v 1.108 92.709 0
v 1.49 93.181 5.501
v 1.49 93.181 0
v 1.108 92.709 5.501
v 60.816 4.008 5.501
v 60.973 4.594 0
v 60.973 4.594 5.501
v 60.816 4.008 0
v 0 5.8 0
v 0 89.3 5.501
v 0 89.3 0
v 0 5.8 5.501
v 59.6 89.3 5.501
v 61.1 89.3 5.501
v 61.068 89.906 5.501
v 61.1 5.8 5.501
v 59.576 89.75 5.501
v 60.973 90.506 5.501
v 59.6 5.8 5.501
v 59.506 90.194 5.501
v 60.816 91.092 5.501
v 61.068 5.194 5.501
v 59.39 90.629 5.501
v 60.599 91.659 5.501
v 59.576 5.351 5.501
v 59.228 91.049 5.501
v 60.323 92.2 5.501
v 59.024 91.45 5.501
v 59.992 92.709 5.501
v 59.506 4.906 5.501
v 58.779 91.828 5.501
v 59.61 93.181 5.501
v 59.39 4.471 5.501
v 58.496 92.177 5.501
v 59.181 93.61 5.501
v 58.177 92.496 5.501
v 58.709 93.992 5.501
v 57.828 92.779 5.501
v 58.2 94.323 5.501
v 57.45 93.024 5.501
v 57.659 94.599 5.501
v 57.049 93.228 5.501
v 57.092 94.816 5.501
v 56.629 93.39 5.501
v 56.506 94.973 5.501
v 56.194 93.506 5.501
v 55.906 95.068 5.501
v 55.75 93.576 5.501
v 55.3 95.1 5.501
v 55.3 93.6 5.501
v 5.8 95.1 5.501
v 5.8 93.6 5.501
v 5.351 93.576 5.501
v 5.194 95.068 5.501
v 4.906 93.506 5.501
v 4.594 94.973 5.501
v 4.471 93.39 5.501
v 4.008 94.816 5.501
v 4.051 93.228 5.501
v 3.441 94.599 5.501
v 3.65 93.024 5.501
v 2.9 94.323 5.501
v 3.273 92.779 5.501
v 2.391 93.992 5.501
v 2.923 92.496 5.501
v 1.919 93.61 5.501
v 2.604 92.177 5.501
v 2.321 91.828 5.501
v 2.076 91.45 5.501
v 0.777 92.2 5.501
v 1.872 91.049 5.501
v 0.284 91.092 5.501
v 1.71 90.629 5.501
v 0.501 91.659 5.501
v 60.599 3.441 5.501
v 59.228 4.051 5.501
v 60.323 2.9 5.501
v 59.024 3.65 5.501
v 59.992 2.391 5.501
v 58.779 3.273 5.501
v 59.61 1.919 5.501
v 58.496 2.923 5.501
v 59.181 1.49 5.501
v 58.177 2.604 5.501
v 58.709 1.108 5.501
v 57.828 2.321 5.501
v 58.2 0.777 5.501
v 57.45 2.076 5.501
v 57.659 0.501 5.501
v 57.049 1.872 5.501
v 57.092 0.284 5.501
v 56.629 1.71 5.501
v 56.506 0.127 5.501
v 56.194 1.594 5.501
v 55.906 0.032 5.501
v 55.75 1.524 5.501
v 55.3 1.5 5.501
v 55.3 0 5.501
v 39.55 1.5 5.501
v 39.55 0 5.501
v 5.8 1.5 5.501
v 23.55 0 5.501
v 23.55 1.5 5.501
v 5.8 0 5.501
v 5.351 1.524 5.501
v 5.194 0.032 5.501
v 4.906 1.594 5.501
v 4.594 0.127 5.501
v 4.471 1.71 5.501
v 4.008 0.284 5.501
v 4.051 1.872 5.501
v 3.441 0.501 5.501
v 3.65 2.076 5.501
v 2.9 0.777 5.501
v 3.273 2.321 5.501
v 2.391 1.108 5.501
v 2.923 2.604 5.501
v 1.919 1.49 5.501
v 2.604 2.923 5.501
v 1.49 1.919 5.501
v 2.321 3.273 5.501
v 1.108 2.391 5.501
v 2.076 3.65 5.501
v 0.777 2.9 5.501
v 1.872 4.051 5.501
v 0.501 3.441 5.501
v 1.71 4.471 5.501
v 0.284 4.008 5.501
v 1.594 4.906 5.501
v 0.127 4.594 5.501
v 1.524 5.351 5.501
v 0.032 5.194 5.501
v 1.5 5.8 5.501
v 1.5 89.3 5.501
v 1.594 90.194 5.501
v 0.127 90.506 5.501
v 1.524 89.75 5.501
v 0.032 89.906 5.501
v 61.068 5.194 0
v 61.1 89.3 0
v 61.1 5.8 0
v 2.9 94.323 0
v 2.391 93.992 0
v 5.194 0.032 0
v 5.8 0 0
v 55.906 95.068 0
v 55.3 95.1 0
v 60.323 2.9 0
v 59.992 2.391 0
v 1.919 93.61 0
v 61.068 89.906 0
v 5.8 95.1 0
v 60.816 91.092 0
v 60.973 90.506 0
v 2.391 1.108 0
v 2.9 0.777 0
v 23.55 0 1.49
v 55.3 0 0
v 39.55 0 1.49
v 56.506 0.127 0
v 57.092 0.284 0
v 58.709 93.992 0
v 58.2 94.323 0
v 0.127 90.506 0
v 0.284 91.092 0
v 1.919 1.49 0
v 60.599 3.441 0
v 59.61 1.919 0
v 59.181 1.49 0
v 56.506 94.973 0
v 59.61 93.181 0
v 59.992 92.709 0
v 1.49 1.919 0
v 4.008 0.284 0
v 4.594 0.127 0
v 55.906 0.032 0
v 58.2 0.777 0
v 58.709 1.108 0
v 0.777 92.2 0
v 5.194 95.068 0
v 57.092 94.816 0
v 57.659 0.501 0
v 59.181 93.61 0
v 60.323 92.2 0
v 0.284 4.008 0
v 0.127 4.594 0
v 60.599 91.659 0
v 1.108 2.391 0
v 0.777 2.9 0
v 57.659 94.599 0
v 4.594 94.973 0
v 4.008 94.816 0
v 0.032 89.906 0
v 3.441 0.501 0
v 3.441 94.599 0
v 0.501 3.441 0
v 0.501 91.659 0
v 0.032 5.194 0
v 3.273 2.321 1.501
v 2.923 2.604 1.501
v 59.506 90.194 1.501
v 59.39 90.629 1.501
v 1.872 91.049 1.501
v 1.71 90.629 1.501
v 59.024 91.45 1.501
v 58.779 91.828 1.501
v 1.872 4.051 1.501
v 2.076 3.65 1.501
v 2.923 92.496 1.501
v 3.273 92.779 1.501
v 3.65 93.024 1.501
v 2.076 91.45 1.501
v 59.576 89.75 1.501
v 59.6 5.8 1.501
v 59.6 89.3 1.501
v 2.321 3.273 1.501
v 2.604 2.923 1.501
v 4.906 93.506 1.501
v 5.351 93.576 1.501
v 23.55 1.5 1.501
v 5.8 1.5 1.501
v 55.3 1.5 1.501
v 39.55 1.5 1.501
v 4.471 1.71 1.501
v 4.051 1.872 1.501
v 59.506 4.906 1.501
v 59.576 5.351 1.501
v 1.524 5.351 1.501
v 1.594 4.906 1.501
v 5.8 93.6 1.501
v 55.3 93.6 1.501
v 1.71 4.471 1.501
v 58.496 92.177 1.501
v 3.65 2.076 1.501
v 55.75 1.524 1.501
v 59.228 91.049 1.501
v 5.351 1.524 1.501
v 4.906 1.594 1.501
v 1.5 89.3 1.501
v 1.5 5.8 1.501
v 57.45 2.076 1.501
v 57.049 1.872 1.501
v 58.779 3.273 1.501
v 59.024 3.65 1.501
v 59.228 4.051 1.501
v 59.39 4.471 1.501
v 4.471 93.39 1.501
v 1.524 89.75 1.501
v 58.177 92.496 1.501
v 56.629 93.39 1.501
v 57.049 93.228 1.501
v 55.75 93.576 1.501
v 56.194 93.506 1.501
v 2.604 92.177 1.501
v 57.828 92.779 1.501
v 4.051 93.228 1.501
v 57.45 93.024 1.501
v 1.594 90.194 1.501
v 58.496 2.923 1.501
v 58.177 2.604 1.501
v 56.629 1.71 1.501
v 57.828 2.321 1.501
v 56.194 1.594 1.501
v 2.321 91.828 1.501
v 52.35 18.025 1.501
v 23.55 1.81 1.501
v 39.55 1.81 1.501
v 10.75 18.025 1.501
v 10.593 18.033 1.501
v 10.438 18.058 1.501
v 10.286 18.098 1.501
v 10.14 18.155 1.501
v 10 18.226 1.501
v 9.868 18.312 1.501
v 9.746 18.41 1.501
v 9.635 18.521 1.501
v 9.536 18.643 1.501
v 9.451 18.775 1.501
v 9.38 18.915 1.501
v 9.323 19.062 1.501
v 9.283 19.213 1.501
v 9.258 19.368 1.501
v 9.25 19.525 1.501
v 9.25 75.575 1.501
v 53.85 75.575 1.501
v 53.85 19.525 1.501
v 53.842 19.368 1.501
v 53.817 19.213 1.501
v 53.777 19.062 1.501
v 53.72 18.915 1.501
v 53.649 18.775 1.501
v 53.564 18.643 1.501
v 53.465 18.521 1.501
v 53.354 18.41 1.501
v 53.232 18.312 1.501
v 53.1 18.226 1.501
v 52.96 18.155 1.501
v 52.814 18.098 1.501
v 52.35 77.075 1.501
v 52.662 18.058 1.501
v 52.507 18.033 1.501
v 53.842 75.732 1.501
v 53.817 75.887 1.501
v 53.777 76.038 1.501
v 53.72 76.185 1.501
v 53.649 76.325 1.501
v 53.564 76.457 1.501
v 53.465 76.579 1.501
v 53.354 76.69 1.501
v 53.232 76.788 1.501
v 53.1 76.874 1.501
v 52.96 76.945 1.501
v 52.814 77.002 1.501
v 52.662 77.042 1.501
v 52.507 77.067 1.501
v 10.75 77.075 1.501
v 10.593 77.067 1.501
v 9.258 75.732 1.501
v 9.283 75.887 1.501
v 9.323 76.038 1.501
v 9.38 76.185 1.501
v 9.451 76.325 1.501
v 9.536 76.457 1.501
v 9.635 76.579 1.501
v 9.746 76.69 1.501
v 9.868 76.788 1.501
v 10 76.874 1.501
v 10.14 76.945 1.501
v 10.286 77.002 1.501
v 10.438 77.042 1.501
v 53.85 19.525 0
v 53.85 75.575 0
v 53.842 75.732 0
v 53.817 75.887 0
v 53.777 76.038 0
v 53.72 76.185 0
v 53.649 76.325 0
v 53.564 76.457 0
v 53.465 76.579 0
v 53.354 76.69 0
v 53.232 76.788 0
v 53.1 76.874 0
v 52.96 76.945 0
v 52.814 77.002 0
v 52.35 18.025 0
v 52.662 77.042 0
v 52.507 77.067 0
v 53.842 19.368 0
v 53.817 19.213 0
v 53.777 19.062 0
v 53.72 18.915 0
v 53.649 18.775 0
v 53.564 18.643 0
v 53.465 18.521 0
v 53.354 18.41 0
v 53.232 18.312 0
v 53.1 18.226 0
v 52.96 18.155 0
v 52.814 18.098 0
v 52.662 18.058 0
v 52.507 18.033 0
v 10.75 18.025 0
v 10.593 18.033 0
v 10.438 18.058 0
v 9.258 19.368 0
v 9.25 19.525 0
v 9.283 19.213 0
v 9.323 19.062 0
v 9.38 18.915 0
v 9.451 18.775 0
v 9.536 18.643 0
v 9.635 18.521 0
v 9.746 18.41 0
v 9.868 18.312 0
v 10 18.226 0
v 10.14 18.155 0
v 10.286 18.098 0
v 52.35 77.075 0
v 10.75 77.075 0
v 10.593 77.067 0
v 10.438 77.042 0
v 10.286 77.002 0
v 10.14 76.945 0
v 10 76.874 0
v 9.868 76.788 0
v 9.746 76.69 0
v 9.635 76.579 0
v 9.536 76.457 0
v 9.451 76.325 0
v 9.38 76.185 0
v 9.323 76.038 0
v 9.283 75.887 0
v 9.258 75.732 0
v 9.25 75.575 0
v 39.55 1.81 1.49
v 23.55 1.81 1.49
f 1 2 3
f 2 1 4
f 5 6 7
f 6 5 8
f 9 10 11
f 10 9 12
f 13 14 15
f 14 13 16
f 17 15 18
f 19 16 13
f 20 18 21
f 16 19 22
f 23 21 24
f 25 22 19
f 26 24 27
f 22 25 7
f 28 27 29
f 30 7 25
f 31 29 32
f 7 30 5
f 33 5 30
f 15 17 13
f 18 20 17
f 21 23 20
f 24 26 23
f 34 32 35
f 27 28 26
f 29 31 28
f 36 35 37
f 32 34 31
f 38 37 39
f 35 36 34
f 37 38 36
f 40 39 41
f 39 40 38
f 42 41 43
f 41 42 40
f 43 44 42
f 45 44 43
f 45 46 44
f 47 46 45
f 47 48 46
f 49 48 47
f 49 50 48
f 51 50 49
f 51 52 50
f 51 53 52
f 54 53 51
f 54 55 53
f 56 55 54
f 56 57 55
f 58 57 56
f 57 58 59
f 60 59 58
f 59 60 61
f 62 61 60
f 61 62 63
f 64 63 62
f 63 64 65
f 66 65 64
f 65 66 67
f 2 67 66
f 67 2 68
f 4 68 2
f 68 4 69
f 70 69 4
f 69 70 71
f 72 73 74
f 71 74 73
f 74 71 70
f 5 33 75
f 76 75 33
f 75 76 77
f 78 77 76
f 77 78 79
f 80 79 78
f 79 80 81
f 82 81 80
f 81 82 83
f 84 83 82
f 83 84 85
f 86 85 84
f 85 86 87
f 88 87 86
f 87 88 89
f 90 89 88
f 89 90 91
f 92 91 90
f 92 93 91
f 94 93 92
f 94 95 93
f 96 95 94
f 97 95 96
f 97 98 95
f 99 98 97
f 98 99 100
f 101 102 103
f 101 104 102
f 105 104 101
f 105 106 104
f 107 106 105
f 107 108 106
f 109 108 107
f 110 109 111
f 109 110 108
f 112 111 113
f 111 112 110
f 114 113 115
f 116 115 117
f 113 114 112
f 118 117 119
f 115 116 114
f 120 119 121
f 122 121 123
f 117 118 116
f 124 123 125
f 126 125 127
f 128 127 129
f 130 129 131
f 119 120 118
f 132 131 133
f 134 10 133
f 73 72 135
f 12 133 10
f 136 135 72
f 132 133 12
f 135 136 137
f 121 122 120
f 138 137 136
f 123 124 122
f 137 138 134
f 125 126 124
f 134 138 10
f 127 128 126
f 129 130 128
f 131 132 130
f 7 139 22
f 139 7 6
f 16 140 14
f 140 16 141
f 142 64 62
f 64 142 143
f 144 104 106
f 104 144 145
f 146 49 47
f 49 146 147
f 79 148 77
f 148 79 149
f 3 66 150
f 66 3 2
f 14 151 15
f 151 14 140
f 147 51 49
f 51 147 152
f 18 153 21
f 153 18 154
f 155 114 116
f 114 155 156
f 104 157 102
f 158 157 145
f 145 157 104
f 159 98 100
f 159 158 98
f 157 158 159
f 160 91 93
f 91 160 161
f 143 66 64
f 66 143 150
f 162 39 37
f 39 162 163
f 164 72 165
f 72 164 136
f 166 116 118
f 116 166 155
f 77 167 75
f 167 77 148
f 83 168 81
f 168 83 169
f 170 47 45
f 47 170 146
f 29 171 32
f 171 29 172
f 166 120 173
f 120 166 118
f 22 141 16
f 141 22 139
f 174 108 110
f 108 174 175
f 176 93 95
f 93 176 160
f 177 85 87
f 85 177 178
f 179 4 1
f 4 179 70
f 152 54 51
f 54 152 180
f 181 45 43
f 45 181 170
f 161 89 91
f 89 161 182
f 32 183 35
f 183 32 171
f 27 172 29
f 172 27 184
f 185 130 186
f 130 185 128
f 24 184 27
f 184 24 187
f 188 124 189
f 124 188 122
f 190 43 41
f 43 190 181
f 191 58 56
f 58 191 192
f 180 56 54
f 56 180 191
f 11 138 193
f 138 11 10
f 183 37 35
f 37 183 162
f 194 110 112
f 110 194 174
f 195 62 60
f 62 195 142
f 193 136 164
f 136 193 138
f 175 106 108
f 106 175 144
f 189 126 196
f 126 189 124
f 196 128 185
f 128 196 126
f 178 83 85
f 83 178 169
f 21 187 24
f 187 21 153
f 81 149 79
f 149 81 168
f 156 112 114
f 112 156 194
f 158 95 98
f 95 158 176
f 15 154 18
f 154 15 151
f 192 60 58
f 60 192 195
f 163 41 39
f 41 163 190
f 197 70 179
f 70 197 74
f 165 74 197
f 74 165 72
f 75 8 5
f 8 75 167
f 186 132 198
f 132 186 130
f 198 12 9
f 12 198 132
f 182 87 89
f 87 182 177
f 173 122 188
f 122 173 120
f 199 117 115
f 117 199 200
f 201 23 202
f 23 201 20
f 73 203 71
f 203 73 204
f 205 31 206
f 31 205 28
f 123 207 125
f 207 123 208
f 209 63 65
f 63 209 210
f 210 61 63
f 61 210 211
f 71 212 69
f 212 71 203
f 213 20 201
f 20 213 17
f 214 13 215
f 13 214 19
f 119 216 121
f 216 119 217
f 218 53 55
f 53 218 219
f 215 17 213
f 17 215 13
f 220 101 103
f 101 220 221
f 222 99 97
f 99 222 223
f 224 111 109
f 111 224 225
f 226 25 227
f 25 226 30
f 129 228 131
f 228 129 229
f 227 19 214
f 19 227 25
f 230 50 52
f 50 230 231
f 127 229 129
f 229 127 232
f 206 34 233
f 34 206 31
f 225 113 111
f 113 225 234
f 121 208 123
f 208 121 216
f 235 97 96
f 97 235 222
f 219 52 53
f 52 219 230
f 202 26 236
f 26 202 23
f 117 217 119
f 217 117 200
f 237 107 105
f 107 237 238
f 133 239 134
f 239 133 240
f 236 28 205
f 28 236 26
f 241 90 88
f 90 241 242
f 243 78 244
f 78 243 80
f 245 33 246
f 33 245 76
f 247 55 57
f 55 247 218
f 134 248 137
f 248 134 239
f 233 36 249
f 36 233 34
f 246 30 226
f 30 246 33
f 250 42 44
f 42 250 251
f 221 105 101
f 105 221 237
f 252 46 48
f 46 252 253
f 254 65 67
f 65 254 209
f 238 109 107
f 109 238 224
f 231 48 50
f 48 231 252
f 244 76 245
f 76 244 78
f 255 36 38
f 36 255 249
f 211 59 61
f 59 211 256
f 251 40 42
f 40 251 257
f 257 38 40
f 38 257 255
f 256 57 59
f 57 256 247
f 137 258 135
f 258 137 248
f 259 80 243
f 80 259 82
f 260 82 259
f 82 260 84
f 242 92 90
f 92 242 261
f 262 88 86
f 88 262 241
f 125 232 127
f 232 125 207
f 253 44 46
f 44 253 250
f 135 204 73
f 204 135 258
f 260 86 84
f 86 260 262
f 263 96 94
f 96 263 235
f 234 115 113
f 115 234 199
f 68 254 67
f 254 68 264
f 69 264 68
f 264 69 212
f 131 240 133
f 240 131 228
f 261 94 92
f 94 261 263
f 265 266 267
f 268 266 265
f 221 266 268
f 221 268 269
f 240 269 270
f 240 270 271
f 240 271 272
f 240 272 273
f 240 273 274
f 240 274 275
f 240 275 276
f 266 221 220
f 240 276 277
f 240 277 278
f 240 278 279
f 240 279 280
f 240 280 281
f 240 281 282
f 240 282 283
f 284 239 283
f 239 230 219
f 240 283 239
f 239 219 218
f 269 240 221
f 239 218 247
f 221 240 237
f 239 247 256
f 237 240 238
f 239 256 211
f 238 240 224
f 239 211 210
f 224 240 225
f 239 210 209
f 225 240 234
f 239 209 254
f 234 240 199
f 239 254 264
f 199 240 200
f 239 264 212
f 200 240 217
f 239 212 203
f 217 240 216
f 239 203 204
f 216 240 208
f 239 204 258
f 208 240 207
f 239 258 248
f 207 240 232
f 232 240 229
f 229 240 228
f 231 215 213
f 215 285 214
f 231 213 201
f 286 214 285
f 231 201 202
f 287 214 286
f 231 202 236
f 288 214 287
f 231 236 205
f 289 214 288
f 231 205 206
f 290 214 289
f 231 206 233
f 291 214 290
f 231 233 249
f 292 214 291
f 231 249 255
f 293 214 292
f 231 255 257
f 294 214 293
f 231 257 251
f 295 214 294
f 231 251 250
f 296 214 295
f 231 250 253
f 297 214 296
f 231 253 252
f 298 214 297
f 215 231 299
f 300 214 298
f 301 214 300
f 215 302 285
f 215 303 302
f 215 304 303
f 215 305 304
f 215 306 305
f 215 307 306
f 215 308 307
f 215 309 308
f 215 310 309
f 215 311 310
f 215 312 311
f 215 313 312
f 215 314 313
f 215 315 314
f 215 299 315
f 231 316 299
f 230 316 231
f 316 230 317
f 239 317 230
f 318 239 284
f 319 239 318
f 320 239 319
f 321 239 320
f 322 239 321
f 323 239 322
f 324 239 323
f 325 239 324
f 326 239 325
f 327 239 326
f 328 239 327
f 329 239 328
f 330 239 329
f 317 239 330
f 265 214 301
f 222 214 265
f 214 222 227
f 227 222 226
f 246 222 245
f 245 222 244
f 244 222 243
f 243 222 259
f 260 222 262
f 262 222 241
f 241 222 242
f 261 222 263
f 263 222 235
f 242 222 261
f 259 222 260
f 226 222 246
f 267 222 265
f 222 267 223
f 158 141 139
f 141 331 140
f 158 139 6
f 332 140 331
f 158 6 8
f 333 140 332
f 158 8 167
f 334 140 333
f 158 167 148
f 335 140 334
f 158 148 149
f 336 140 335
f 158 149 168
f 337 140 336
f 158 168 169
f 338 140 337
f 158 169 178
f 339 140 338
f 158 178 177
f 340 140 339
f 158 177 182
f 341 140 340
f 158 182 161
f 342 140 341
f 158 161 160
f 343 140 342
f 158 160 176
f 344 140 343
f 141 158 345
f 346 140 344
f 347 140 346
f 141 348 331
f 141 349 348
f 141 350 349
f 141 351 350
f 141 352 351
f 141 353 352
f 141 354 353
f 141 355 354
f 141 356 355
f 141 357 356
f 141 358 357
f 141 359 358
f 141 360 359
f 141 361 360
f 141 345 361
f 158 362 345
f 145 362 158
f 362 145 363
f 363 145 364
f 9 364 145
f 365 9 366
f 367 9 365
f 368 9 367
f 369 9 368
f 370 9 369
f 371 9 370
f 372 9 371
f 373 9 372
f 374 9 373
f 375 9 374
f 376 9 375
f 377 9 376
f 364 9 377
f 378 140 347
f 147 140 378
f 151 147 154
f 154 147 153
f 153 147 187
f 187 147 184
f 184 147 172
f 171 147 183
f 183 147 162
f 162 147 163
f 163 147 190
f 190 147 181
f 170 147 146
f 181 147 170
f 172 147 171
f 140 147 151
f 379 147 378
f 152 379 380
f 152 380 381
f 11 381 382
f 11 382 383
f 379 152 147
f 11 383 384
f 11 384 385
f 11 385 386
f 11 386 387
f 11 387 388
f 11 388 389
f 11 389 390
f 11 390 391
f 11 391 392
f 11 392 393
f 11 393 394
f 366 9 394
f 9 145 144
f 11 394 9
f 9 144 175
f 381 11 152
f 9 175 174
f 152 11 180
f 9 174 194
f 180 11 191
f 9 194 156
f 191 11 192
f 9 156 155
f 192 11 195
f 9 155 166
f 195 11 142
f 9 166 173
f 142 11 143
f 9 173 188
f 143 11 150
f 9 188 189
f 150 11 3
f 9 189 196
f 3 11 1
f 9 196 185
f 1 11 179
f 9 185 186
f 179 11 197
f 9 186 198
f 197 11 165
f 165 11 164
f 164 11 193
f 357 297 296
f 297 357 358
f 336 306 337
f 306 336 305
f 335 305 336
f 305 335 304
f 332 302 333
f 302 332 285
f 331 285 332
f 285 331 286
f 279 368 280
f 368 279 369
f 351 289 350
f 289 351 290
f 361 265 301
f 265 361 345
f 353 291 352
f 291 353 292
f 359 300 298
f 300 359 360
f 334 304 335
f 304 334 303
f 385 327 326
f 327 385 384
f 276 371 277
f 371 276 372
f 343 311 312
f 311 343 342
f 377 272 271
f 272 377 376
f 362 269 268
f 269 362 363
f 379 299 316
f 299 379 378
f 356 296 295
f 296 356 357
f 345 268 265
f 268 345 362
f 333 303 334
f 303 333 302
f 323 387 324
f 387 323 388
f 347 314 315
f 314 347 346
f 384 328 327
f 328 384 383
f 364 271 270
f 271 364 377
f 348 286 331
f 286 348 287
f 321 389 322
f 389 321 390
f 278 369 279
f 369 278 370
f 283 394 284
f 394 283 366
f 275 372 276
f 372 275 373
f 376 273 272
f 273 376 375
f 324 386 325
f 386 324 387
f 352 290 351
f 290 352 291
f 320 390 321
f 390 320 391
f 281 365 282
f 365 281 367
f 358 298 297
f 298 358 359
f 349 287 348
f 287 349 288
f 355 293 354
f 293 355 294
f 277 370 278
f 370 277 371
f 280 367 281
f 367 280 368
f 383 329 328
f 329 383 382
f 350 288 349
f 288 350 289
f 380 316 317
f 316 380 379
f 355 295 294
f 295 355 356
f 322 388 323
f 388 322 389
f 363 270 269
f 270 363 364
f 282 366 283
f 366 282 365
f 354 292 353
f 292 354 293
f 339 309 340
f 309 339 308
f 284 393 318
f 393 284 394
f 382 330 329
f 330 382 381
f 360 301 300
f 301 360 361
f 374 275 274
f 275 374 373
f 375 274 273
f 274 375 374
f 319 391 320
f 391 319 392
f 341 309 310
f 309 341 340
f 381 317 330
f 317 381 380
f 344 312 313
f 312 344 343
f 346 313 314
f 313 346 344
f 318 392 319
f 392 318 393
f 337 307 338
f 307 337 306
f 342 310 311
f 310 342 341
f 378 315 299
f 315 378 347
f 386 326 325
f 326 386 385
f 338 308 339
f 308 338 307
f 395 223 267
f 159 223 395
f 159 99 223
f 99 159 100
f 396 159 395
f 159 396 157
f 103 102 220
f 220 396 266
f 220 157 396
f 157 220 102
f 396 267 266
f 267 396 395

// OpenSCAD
/*
 * Vibe Bike Display Mount - Front Cap v1.0
 * =========================================
 * Slides over front of mount to cover PCB edges,
 * with a cutout showing only the screen.
 *
 * Coords: X=width, Y=height, Z=depth
 *   Z=0 = visible front face (print this on bed)
 *   Z+  = lip extends backward toward mount
 *
 * Front view:
 *   ┌───────────────────────────┐
 *   │                           │
 *   │   ┌───────────────────┐   │
 *   │   │                   │   │
 *   │   │   screen cutout   │   │
 *   │   │                   │   │
 *   │   └───────────────────┘   │
 *   │                           │
 *   └───────────────────────────┘
 *
 * Print: Front face (Z=0) on bed, lip pointing up.
 */

$fn = 60;

// ================================================================
//  MOUNT DIMENSIONS (must match bike_mount.scad)
// ================================================================

BOARD_W      = 50.0;
BOARD_H      = 86.0;
WALL         = 2.5;
BOARD_GAP    = 0.25;
CONN_EXTRA   = 2.0;     // extra right-side clearance (must match bike_mount.scad)
CORNER_R     = 4.0;
USB_W        = 14.0;

inner_w      = BOARD_W + BOARD_GAP * 2 + CONN_EXTRA;
inner_h      = BOARD_H + BOARD_GAP * 2;
frame_w      = inner_w + WALL * 2;           // 55.5
frame_h      = inner_h + WALL * 2;           // 91.5

board_x      = WALL + BOARD_GAP + CONN_EXTRA; // 4.75 (extra gap on low-X = screen-right for connector)
board_y      = WALL + BOARD_GAP;             // 2.75

// ================================================================
//  SCREEN DIMENSIONS (ES3C28P datasheet)
// ================================================================

SCREEN_VA_W  = 43.60;    // visible area width
SCREEN_VA_H  = 58.05;    // visible area height

// Screen centered on board
screen_x     = board_x + (BOARD_W - SCREEN_VA_W) / 2;   // 5.95
screen_y     = board_y + (BOARD_H - SCREEN_VA_H) / 2;   // 16.725

// ================================================================
//  CAP DESIGN PARAMETERS
// ================================================================

CAP_T        = 1.5;      // plate thickness
LIP_T        = 1.5;      // lip wall thickness
LIP_D        = 4.0;      // lip depth (wraps back over mount)
FIT_TOL      = 0.3;      // clearance for cap to slide onto mount
SCREEN_M     = 0.5;      // margin around screen cutout
SCREEN_R     = 1.5;      // screen cutout corner radius

// ================================================================
//  COMPUTED
// ================================================================

// Offset from cap origin to mount frame origin
offset       = LIP_T + FIT_TOL;

// Cap outer dimensions
cap_w        = frame_w + offset * 2;         // 59.1
cap_h        = frame_h + offset * 2;         // 95.1
cap_r        = CORNER_R + offset;            // 5.8

// Lip inner pocket (matches mount frame + tolerance)
lip_inner_w  = frame_w + FIT_TOL * 2;
lip_inner_h  = frame_h + FIT_TOL * 2;
lip_inner_r  = CORNER_R + FIT_TOL;

// Screen cutout (in cap coordinates)
cut_w        = SCREEN_VA_W + SCREEN_M * 2;   // 44.6
cut_h        = SCREEN_VA_H + SCREEN_M * 2;   // 59.05
cut_x        = offset + screen_x - SCREEN_M; // 7.25
cut_y        = offset + screen_y - SCREEN_M; // 18.025

// USB cable clearance in bottom lip (centered on board, not frame)
usb_cut_w    = USB_W + 2;
usb_cut_x    = offset + board_x + (BOARD_W - usb_cut_w) / 2;

// ================================================================
//  HELPERS
// ================================================================

module rounded_box(w, h, d, r) {
    translate([r, r, 0])
        minkowski() {
            cube([w - r*2, h - r*2, d]);
            cylinder(r=r, h=0.001);
        }
}

module rounded_rect(w, h, r) {
    translate([r, r])
        minkowski() {
            square([w - r*2, h - r*2]);
            circle(r=r);
        }
}

// ================================================================
//  MODEL
// ================================================================

module cap() {
    difference() {
        union() {
            // Front plate (Z=0 to CAP_T)
            rounded_box(cap_w, cap_h, CAP_T, cap_r);

            // Lip (Z=CAP_T to CAP_T+LIP_D, wraps around mount frame)
            translate([0, 0, CAP_T])
                difference() {
                    rounded_box(cap_w, cap_h, LIP_D, cap_r);
                    translate([LIP_T, LIP_T, -1])
                        rounded_box(lip_inner_w, lip_inner_h, LIP_D + 2, lip_inner_r);
                }
        }

        // Screen cutout (through plate)
        translate([cut_x, cut_y, -1])
            linear_extrude(CAP_T + 2)
                rounded_rect(cut_w, cut_h, SCREEN_R);

        // USB cable clearance (notch in bottom lip)
        translate([usb_cut_x, -0.01, CAP_T - 0.01])
            cube([usb_cut_w, offset + 0.02, LIP_D + 0.02]);
    }
}

// ================================================================
//  RENDER
// ================================================================

cap();
